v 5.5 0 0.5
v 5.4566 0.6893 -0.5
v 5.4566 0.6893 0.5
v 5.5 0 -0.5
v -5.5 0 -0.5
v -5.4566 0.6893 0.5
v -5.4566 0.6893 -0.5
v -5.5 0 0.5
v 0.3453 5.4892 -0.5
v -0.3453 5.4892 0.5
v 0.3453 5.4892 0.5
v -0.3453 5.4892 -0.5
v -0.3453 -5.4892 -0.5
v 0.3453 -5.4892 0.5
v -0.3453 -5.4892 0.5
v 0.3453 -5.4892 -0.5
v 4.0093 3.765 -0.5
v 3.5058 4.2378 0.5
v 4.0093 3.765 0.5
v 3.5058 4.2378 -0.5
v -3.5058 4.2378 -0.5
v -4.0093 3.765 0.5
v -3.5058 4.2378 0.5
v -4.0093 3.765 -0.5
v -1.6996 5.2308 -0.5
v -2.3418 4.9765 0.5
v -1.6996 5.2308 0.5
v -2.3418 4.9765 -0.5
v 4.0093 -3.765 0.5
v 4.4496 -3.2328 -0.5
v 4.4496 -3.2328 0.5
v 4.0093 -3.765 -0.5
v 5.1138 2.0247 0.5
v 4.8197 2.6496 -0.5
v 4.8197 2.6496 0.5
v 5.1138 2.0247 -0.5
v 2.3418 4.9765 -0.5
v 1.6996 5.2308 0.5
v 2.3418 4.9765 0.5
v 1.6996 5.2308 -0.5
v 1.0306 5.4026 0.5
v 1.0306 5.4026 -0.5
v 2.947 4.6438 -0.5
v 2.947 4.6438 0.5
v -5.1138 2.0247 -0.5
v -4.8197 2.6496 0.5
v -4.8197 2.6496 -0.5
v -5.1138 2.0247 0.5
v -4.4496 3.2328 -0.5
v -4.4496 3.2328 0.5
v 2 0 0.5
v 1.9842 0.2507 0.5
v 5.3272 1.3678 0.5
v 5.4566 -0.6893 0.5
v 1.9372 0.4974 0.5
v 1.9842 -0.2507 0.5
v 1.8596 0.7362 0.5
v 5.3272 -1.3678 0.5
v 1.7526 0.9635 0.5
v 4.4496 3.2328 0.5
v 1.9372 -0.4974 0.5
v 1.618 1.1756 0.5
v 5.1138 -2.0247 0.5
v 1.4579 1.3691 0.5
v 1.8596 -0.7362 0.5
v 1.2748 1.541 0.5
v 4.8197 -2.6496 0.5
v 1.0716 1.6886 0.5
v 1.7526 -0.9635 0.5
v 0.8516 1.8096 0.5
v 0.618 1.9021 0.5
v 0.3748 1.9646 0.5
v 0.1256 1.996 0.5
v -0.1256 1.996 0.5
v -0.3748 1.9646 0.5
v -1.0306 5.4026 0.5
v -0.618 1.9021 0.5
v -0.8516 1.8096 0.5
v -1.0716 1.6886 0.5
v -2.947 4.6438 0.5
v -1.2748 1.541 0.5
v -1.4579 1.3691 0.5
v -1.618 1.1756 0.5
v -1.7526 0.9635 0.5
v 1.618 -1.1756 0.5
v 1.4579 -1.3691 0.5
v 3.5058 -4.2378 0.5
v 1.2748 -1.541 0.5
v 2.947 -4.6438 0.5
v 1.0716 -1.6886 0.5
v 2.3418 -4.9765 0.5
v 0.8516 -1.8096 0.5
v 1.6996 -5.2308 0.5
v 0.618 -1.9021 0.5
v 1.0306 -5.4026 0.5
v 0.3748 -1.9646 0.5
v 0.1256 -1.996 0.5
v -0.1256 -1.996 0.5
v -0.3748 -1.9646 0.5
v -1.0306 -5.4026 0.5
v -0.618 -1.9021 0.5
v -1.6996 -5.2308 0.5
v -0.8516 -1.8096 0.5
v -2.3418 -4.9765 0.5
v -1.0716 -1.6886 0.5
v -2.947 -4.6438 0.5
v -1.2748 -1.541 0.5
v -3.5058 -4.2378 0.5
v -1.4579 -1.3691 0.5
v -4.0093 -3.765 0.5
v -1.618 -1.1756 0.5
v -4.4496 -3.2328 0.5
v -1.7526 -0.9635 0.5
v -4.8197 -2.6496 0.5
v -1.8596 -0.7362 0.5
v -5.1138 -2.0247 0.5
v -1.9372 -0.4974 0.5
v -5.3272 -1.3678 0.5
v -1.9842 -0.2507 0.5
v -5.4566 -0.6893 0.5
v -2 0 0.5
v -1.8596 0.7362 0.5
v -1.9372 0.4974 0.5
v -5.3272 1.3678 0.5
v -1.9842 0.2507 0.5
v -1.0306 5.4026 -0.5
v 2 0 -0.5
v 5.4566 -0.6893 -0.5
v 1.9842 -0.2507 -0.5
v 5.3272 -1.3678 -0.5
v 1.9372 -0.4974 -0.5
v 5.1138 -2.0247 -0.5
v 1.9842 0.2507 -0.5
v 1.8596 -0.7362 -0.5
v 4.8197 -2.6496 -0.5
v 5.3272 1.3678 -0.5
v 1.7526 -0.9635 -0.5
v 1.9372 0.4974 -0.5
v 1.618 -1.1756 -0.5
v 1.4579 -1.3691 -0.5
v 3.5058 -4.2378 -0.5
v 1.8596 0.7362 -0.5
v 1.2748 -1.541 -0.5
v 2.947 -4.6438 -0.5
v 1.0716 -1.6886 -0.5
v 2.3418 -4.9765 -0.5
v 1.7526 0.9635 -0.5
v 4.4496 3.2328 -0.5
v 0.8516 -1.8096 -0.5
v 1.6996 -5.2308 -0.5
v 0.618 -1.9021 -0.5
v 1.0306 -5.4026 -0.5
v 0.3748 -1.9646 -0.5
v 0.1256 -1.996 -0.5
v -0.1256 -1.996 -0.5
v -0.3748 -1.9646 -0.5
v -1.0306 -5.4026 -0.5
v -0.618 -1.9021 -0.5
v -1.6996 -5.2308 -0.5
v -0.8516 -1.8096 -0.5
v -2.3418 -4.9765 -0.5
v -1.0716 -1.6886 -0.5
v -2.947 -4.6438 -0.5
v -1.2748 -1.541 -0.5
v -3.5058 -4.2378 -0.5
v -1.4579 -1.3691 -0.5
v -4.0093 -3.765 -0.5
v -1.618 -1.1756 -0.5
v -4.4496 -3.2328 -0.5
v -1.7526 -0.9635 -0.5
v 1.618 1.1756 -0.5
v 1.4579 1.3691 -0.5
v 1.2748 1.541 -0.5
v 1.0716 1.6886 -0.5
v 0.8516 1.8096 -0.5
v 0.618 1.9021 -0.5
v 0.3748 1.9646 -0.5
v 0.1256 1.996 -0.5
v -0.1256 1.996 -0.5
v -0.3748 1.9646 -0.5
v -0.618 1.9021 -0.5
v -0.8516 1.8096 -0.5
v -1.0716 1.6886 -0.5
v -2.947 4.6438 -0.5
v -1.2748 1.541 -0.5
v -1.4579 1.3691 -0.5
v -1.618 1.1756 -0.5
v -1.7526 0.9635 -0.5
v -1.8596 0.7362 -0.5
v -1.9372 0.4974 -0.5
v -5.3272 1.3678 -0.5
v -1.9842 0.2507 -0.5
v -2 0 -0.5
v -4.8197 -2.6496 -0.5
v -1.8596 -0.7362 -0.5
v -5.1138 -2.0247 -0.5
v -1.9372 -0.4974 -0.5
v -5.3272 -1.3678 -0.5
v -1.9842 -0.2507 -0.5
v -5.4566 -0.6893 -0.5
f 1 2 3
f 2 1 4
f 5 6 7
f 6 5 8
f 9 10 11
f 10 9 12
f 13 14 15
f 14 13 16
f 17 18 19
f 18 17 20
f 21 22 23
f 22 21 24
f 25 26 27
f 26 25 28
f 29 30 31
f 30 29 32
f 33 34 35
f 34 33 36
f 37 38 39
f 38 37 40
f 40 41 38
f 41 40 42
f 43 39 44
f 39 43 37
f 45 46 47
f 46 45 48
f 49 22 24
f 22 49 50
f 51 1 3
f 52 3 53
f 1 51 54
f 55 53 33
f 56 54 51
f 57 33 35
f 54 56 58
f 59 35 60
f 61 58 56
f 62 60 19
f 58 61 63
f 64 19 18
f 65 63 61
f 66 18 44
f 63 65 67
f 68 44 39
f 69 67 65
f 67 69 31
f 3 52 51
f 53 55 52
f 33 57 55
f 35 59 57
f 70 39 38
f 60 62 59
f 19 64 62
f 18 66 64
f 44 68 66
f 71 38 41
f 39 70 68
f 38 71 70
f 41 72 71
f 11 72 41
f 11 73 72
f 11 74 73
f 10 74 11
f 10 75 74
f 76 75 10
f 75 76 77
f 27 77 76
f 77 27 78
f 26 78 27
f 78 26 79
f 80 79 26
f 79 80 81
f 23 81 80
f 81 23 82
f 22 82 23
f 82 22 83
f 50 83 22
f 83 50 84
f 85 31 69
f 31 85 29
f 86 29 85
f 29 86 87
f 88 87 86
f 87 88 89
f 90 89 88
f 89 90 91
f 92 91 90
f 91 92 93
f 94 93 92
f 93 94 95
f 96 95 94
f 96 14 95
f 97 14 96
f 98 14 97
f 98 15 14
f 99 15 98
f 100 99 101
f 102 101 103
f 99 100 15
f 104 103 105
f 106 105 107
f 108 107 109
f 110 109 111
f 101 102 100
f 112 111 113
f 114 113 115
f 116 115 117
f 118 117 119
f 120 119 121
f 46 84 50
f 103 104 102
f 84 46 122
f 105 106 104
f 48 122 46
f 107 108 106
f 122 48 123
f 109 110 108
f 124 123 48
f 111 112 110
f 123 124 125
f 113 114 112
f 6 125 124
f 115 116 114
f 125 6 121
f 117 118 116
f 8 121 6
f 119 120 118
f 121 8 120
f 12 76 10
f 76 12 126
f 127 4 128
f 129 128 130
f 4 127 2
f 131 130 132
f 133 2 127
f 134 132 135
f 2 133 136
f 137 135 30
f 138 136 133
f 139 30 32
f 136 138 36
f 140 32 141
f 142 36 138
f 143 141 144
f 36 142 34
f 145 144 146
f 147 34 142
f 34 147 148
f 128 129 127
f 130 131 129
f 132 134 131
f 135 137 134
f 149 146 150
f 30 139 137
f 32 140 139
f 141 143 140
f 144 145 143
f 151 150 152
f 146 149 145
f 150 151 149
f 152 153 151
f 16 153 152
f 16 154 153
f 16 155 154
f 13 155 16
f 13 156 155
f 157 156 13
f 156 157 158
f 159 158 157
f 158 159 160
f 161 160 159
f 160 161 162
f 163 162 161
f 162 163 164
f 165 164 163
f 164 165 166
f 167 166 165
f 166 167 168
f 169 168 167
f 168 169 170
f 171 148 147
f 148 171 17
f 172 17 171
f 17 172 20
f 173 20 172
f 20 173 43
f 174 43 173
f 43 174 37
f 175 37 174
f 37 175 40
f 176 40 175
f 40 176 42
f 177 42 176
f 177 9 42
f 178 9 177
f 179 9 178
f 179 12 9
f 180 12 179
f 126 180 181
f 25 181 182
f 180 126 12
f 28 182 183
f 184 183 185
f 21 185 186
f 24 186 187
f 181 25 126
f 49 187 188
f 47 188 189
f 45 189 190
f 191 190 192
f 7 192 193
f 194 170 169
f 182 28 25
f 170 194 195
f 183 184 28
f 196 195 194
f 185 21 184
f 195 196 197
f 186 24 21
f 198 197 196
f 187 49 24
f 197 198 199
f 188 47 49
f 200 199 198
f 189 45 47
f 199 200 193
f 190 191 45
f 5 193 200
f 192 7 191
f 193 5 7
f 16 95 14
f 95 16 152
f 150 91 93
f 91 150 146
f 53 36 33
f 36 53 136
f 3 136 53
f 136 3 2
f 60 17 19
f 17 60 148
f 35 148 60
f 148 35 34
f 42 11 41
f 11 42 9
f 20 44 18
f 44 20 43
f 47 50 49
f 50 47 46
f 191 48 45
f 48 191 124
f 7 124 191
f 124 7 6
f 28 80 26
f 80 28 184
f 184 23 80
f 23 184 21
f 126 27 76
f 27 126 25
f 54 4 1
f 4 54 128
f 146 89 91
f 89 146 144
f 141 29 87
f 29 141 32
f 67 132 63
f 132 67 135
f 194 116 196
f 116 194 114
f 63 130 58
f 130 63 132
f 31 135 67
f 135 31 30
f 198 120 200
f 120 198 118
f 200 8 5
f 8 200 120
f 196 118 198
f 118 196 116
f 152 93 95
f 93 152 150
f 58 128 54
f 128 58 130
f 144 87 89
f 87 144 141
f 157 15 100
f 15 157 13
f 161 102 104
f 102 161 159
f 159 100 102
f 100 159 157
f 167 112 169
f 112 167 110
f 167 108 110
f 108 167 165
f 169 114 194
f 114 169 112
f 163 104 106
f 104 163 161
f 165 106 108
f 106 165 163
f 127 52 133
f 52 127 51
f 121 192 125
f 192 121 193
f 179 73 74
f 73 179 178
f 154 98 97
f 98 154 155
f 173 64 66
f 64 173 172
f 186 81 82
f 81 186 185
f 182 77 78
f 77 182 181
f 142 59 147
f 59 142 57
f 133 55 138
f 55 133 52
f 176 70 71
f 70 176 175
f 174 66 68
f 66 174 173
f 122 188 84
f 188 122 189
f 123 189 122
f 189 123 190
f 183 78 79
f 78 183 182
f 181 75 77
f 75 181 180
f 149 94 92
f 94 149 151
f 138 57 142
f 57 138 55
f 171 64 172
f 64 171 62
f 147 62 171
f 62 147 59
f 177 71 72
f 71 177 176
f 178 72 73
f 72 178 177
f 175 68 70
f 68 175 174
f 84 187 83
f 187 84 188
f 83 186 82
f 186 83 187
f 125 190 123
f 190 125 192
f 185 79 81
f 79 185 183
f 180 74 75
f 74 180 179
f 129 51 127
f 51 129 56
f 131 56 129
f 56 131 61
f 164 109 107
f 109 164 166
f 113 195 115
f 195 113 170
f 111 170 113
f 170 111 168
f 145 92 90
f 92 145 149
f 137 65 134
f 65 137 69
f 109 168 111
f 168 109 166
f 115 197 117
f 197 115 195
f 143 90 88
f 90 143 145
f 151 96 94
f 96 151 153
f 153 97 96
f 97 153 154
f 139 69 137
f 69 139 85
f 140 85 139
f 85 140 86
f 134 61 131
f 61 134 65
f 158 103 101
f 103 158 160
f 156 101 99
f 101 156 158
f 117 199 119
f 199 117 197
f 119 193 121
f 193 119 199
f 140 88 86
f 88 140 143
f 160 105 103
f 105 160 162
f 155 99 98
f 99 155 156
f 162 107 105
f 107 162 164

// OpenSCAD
$fn = 50;


difference() {
	union() {
		translate(v = [0, 0, -0.5000000000]) {
			cylinder(h = 1, r = 5.5000000000);
		}
	}
	union() {
		translate(v = [0, 0, -100.0000000000]) {
			cylinder(h = 200, r = 2);
		}
	}
}
